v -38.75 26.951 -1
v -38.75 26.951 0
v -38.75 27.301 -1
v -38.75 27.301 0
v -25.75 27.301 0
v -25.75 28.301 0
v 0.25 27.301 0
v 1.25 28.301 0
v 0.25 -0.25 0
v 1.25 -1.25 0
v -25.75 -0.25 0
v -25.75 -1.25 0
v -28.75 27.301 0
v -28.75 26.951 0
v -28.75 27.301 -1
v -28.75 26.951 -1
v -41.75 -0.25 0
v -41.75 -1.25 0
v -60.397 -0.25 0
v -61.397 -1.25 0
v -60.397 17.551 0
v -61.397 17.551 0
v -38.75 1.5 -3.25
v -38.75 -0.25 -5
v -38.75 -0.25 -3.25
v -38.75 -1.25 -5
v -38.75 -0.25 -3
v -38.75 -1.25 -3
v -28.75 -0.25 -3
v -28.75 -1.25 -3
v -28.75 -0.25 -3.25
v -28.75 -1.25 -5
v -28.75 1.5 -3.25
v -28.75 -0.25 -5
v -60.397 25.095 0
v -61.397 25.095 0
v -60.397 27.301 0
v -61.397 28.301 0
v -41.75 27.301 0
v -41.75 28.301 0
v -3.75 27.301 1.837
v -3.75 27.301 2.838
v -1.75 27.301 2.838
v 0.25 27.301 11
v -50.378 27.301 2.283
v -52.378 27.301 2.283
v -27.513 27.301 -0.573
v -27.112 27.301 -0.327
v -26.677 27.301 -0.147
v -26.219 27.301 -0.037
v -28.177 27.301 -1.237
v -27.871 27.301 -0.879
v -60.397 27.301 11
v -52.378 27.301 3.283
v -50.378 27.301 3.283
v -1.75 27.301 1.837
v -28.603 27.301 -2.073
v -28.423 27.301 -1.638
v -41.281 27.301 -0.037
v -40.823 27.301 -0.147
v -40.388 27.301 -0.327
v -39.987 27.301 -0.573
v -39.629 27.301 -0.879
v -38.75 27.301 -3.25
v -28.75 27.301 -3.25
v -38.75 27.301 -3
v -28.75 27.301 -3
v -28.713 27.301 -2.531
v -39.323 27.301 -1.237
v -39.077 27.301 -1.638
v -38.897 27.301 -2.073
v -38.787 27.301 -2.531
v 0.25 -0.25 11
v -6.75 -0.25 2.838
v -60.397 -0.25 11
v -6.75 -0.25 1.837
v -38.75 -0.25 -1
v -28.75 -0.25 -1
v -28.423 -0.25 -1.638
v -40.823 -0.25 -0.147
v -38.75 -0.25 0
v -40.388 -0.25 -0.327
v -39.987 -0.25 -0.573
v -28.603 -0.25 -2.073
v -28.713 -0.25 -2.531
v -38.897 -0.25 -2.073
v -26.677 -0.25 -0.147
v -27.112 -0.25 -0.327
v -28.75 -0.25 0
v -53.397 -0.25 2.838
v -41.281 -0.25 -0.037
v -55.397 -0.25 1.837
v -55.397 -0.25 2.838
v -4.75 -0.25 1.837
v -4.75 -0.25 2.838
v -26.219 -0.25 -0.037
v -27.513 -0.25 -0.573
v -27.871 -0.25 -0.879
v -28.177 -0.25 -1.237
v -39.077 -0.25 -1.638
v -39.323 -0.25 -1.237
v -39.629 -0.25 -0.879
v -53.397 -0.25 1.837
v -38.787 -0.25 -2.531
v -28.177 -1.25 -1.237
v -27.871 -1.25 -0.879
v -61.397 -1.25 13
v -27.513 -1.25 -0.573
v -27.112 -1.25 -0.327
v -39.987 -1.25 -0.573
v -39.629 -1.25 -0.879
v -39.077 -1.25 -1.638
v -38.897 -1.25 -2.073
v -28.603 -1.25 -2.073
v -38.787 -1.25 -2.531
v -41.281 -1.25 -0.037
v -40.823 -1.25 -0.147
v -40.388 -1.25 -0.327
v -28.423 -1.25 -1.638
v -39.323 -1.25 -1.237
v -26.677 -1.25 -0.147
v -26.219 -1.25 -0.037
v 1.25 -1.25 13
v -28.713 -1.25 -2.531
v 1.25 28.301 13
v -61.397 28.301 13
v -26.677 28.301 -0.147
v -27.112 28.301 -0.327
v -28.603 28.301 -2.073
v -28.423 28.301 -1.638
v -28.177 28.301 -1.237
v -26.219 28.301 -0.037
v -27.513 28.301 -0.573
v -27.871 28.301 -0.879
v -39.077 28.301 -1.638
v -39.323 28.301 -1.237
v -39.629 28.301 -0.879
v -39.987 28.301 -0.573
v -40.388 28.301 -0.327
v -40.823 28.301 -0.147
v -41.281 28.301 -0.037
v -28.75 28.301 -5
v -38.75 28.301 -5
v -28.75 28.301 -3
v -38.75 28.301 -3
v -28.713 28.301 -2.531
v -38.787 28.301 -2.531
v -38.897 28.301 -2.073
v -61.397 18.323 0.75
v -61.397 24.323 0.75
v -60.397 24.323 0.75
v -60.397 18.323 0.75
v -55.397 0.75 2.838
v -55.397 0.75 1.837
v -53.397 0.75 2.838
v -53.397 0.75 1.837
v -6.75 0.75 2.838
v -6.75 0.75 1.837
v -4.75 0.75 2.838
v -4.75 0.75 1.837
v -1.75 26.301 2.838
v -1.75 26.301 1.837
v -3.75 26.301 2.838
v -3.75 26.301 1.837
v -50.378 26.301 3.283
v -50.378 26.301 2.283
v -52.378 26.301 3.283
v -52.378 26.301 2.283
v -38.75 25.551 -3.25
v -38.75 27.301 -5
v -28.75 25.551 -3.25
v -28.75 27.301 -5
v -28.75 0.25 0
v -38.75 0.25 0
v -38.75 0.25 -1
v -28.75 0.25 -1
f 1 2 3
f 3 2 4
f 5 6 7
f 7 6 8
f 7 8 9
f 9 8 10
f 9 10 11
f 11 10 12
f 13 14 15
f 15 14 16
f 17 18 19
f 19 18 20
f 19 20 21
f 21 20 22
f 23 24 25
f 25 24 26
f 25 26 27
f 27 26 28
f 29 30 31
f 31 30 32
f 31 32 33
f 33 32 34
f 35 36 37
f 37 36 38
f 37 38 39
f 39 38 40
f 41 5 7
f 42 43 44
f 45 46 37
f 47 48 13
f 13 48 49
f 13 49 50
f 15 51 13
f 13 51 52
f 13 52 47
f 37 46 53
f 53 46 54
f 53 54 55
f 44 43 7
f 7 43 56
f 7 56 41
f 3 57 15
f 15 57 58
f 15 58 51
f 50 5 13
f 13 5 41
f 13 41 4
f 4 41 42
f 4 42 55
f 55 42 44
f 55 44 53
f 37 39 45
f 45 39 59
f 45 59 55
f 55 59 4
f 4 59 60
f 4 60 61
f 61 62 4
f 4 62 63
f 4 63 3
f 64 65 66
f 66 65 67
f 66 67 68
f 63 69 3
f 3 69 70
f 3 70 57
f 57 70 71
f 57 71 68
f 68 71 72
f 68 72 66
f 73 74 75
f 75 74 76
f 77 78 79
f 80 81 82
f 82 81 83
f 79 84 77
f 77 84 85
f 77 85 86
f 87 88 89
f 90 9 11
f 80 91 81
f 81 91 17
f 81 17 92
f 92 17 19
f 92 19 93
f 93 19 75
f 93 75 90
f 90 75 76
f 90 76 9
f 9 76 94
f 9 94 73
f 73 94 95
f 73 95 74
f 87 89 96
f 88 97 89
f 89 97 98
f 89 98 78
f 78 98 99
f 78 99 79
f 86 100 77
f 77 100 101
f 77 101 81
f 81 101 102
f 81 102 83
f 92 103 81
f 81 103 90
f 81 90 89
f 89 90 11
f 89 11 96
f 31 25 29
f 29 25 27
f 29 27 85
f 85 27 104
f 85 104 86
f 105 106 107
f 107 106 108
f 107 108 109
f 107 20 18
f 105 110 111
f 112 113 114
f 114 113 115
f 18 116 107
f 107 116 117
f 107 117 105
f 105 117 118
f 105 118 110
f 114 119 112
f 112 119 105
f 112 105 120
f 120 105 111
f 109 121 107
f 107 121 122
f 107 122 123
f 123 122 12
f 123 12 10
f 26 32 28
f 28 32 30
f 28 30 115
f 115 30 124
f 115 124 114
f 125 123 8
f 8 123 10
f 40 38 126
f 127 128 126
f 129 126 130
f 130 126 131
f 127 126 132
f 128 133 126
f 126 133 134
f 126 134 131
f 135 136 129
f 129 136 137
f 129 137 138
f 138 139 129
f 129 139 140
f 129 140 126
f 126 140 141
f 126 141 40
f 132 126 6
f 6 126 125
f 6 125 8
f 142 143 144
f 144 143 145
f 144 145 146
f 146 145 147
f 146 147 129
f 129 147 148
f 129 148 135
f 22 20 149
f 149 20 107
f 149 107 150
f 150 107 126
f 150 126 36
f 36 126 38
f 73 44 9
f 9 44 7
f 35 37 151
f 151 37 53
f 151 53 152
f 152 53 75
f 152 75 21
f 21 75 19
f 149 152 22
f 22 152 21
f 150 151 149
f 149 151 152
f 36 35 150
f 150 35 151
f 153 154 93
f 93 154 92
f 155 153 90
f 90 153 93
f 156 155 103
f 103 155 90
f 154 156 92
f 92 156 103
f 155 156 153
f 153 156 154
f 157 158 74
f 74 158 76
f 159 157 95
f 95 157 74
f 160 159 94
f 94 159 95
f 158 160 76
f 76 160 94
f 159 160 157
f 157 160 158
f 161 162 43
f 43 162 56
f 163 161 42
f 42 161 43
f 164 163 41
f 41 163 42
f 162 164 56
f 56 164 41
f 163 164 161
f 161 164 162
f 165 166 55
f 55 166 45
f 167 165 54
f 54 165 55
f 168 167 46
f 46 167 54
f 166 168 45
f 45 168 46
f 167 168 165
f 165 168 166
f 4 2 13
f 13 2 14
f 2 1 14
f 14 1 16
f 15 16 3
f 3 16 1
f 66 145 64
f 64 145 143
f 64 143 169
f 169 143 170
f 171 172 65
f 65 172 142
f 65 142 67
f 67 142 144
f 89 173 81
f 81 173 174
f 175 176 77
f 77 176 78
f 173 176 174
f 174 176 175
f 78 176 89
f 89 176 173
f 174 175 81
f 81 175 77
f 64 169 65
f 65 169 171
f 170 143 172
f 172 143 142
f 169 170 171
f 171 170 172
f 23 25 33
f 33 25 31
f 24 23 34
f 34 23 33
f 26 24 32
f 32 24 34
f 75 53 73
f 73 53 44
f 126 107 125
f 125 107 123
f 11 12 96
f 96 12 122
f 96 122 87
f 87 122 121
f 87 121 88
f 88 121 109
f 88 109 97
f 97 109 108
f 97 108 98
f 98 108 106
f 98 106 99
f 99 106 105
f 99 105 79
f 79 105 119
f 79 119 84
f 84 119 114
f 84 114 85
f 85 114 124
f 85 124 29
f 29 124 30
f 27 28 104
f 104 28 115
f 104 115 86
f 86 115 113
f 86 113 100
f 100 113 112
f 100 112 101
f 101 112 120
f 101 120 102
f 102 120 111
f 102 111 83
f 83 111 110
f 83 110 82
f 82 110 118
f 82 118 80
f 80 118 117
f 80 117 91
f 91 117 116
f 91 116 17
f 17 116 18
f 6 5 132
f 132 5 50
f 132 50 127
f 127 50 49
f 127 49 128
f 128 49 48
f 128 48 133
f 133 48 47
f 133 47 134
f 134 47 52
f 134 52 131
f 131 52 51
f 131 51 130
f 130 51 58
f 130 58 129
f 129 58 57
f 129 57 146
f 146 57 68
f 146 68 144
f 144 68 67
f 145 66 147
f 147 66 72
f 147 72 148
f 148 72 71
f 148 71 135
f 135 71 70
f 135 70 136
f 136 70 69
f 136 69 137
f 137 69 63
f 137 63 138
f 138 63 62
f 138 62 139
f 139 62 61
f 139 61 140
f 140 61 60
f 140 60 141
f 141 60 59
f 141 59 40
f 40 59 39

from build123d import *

# Parameters (mm, degrees)
SKETCH1_W            = 62.6472
SKETCH1_H            = 29.551
SKETCH1_W_2          = 60.6472
SKETCH1_H_2          = 27.551
BOSS_EXTRUDE1_DEPTH  = 11
CUT_EXTRUDE1_REACH   = 64.647
SKETCH4_W            = 2
SKETCH4_H            = 1
BOSS_EXTRUDE2_DEPTH  = 1
SKETCH6_W            = 2
SKETCH6_H            = 1
BOSS_EXTRUDE3_DEPTH  = 1
BOSS_EXTRUDE4_START  = -30
SKETCH7_W            = 1
SKETCH7_H            = 1
BOSS_EXTRUDE4_DEPTH  = 10
BOSS_EXTRUDE5_START  = 40
SKETCH9_W            = 1
SKETCH9_H            = 1.5
BOSS_EXTRUDE5_DEPTH  = 10
BOSS_EXTRUDE7_START  = -30
BOSS_EXTRUDE7_DEPTH  = 10
SKETCH12_W           = 62.6472
SKETCH12_H           = 29.551
BOSS_EXTRUDE8_DEPTH  = 2
BOSS_EXTRUDE9_DEPTH  = 1
BOSS_EXTRUDE10_START = -29.551
BOSS_EXTRUDE10_DEPTH = 1


with BuildPart() as part:
    # Sketch1 → Boss-Extrude1 (new body)
    with BuildSketch(Plane.XY):
        with Locations((-30.0736, 13.5255)):
            Rectangle(SKETCH1_W, SKETCH1_H)
        with Locations((-30.0736, 13.5255)):
            Rectangle(SKETCH1_W_2, SKETCH1_H_2, mode=Mode.SUBTRACT)
    extrude(amount=BOSS_EXTRUDE1_DEPTH)

    # Sketch3 → Cut-Extrude1 (cut, up to next)
    with BuildSketch(Plane.ZY.offset(61.3972), mode=Mode.PRIVATE) as cut_extrude1_sk1:
        Polygon((0, 17.5514), (0.75, 18.3233), (0.75, 24.3233), (0, 25.0952), align=None)
    cut_extrude1_tool1 = extrude(cut_extrude1_sk1.sketch, amount=-CUT_EXTRUDE1_REACH, mode=Mode.PRIVATE) & part.part
    add(cut_extrude1_tool1.solids().sort_by_distance((-61.3972, 21.3233, 0.360752))[0], mode=Mode.SUBTRACT)

    # Sketch4 → Boss-Extrude2 (add)
    with BuildSketch(Plane(origin=(0, -0.25, 0), x_dir=(1, 0, 0), z_dir=(0, 1, 0))):
        with Locations((-54.3972, -2.3375)):
            Rectangle(SKETCH4_W, SKETCH4_H)
        with Locations((-5.75, -2.3375)):
            Rectangle(SKETCH4_W, SKETCH4_H)
    extrude(amount=BOSS_EXTRUDE2_DEPTH)

    # Sketch6 → Boss-Extrude3 (add)
    with BuildSketch(Plane.XZ.offset(-27.301)):
        with Locations((-2.75, 2.3375)):
            Rectangle(SKETCH6_W, SKETCH6_H)
        with Locations((-51.3776, 2.783222425)):
            Rectangle(SKETCH6_W, SKETCH6_H)
    extrude(amount=BOSS_EXTRUDE3_DEPTH)

    # Sketch7 → Boss-Extrude4 (add)
    with BuildSketch(Plane(origin=(1.25, 0, 0), x_dir=(0, 0, -1), z_dir=(1, 0, 0)).offset(BOSS_EXTRUDE4_START)):
        with Locations((0.5, 27.451)):
            Rectangle(SKETCH7_W, SKETCH7_H)
    extrude(amount=-BOSS_EXTRUDE4_DEPTH)

    # Sketch9 → Boss-Extrude5 (add)
    with BuildSketch(Plane.ZY.offset(-1.25).offset(BOSS_EXTRUDE5_START)):
        with Locations((-0.5, -0.5)):
            Rectangle(SKETCH9_W, SKETCH9_H)
    extrude(amount=-BOSS_EXTRUDE5_DEPTH)

    # Sketch11 → Boss-Extrude7 (add)
    with BuildSketch(Plane(origin=(1.25, 0, 0), x_dir=(0, 0, -1), z_dir=(1, 0, 0)).offset(BOSS_EXTRUDE7_START)):
        Polygon((5, 28.301), (5, 27.301), (3.25, 25.551), (3.25, 27.301), (0, 27.301), (0, 28.301), align=None)
        Polygon((0, -1.25), (5, -1.25), (5, -0.25), (3.25, 1.5), (3.25, -0.25), (0, -0.25), align=None)
    extrude(amount=-BOSS_EXTRUDE7_DEPTH)

    # Sketch12 → Boss-Extrude8 (add)
    with BuildSketch(Plane.XY.offset(11)):
        with Locations((-30.0736, 13.5255)):
            Rectangle(SKETCH12_W, SKETCH12_H)
    extrude(amount=BOSS_EXTRUDE8_DEPTH)

    # Sketch13 → Boss-Extrude9 (add)
    with BuildSketch(Plane.XZ.offset(1.25)):
        with BuildLine():
            Line((-25.75, 0), (-28.75, 0))
            Line((-28.75, 0), (-28.75, -3))
            ThreePointArc((-28.75, -3), (-27.871320344, -0.878679656), (-25.75, 0))
        make_face()
        with BuildLine():
            Line((-41.75, 0), (-38.75, 0))
            Line((-38.75, 0), (-38.75, -3))
            ThreePointArc((-38.75, -3), (-39.628679656, -0.878679656), (-41.75, 0))
        make_face()
    extrude(amount=-BOSS_EXTRUDE9_DEPTH)

    # Sketch13<2> → Boss-Extrude10 (add)
    with BuildSketch(Plane.XZ.offset(1.25).offset(BOSS_EXTRUDE10_START)):
        with BuildLine():
            Line((-25.75, 0), (-28.75, 0))
            Line((-28.75, 0), (-28.75, -3))
            ThreePointArc((-28.75, -3), (-27.871320344, -0.878679656), (-25.75, 0))
        make_face()
        with BuildLine():
            Line((-41.75, 0), (-38.75, 0))
            Line((-38.75, 0), (-38.75, -3))
            ThreePointArc((-38.75, -3), (-39.628679656, -0.878679656), (-41.75, 0))
        make_face()
    extrude(amount=BOSS_EXTRUDE10_DEPTH)


solid = part.part
